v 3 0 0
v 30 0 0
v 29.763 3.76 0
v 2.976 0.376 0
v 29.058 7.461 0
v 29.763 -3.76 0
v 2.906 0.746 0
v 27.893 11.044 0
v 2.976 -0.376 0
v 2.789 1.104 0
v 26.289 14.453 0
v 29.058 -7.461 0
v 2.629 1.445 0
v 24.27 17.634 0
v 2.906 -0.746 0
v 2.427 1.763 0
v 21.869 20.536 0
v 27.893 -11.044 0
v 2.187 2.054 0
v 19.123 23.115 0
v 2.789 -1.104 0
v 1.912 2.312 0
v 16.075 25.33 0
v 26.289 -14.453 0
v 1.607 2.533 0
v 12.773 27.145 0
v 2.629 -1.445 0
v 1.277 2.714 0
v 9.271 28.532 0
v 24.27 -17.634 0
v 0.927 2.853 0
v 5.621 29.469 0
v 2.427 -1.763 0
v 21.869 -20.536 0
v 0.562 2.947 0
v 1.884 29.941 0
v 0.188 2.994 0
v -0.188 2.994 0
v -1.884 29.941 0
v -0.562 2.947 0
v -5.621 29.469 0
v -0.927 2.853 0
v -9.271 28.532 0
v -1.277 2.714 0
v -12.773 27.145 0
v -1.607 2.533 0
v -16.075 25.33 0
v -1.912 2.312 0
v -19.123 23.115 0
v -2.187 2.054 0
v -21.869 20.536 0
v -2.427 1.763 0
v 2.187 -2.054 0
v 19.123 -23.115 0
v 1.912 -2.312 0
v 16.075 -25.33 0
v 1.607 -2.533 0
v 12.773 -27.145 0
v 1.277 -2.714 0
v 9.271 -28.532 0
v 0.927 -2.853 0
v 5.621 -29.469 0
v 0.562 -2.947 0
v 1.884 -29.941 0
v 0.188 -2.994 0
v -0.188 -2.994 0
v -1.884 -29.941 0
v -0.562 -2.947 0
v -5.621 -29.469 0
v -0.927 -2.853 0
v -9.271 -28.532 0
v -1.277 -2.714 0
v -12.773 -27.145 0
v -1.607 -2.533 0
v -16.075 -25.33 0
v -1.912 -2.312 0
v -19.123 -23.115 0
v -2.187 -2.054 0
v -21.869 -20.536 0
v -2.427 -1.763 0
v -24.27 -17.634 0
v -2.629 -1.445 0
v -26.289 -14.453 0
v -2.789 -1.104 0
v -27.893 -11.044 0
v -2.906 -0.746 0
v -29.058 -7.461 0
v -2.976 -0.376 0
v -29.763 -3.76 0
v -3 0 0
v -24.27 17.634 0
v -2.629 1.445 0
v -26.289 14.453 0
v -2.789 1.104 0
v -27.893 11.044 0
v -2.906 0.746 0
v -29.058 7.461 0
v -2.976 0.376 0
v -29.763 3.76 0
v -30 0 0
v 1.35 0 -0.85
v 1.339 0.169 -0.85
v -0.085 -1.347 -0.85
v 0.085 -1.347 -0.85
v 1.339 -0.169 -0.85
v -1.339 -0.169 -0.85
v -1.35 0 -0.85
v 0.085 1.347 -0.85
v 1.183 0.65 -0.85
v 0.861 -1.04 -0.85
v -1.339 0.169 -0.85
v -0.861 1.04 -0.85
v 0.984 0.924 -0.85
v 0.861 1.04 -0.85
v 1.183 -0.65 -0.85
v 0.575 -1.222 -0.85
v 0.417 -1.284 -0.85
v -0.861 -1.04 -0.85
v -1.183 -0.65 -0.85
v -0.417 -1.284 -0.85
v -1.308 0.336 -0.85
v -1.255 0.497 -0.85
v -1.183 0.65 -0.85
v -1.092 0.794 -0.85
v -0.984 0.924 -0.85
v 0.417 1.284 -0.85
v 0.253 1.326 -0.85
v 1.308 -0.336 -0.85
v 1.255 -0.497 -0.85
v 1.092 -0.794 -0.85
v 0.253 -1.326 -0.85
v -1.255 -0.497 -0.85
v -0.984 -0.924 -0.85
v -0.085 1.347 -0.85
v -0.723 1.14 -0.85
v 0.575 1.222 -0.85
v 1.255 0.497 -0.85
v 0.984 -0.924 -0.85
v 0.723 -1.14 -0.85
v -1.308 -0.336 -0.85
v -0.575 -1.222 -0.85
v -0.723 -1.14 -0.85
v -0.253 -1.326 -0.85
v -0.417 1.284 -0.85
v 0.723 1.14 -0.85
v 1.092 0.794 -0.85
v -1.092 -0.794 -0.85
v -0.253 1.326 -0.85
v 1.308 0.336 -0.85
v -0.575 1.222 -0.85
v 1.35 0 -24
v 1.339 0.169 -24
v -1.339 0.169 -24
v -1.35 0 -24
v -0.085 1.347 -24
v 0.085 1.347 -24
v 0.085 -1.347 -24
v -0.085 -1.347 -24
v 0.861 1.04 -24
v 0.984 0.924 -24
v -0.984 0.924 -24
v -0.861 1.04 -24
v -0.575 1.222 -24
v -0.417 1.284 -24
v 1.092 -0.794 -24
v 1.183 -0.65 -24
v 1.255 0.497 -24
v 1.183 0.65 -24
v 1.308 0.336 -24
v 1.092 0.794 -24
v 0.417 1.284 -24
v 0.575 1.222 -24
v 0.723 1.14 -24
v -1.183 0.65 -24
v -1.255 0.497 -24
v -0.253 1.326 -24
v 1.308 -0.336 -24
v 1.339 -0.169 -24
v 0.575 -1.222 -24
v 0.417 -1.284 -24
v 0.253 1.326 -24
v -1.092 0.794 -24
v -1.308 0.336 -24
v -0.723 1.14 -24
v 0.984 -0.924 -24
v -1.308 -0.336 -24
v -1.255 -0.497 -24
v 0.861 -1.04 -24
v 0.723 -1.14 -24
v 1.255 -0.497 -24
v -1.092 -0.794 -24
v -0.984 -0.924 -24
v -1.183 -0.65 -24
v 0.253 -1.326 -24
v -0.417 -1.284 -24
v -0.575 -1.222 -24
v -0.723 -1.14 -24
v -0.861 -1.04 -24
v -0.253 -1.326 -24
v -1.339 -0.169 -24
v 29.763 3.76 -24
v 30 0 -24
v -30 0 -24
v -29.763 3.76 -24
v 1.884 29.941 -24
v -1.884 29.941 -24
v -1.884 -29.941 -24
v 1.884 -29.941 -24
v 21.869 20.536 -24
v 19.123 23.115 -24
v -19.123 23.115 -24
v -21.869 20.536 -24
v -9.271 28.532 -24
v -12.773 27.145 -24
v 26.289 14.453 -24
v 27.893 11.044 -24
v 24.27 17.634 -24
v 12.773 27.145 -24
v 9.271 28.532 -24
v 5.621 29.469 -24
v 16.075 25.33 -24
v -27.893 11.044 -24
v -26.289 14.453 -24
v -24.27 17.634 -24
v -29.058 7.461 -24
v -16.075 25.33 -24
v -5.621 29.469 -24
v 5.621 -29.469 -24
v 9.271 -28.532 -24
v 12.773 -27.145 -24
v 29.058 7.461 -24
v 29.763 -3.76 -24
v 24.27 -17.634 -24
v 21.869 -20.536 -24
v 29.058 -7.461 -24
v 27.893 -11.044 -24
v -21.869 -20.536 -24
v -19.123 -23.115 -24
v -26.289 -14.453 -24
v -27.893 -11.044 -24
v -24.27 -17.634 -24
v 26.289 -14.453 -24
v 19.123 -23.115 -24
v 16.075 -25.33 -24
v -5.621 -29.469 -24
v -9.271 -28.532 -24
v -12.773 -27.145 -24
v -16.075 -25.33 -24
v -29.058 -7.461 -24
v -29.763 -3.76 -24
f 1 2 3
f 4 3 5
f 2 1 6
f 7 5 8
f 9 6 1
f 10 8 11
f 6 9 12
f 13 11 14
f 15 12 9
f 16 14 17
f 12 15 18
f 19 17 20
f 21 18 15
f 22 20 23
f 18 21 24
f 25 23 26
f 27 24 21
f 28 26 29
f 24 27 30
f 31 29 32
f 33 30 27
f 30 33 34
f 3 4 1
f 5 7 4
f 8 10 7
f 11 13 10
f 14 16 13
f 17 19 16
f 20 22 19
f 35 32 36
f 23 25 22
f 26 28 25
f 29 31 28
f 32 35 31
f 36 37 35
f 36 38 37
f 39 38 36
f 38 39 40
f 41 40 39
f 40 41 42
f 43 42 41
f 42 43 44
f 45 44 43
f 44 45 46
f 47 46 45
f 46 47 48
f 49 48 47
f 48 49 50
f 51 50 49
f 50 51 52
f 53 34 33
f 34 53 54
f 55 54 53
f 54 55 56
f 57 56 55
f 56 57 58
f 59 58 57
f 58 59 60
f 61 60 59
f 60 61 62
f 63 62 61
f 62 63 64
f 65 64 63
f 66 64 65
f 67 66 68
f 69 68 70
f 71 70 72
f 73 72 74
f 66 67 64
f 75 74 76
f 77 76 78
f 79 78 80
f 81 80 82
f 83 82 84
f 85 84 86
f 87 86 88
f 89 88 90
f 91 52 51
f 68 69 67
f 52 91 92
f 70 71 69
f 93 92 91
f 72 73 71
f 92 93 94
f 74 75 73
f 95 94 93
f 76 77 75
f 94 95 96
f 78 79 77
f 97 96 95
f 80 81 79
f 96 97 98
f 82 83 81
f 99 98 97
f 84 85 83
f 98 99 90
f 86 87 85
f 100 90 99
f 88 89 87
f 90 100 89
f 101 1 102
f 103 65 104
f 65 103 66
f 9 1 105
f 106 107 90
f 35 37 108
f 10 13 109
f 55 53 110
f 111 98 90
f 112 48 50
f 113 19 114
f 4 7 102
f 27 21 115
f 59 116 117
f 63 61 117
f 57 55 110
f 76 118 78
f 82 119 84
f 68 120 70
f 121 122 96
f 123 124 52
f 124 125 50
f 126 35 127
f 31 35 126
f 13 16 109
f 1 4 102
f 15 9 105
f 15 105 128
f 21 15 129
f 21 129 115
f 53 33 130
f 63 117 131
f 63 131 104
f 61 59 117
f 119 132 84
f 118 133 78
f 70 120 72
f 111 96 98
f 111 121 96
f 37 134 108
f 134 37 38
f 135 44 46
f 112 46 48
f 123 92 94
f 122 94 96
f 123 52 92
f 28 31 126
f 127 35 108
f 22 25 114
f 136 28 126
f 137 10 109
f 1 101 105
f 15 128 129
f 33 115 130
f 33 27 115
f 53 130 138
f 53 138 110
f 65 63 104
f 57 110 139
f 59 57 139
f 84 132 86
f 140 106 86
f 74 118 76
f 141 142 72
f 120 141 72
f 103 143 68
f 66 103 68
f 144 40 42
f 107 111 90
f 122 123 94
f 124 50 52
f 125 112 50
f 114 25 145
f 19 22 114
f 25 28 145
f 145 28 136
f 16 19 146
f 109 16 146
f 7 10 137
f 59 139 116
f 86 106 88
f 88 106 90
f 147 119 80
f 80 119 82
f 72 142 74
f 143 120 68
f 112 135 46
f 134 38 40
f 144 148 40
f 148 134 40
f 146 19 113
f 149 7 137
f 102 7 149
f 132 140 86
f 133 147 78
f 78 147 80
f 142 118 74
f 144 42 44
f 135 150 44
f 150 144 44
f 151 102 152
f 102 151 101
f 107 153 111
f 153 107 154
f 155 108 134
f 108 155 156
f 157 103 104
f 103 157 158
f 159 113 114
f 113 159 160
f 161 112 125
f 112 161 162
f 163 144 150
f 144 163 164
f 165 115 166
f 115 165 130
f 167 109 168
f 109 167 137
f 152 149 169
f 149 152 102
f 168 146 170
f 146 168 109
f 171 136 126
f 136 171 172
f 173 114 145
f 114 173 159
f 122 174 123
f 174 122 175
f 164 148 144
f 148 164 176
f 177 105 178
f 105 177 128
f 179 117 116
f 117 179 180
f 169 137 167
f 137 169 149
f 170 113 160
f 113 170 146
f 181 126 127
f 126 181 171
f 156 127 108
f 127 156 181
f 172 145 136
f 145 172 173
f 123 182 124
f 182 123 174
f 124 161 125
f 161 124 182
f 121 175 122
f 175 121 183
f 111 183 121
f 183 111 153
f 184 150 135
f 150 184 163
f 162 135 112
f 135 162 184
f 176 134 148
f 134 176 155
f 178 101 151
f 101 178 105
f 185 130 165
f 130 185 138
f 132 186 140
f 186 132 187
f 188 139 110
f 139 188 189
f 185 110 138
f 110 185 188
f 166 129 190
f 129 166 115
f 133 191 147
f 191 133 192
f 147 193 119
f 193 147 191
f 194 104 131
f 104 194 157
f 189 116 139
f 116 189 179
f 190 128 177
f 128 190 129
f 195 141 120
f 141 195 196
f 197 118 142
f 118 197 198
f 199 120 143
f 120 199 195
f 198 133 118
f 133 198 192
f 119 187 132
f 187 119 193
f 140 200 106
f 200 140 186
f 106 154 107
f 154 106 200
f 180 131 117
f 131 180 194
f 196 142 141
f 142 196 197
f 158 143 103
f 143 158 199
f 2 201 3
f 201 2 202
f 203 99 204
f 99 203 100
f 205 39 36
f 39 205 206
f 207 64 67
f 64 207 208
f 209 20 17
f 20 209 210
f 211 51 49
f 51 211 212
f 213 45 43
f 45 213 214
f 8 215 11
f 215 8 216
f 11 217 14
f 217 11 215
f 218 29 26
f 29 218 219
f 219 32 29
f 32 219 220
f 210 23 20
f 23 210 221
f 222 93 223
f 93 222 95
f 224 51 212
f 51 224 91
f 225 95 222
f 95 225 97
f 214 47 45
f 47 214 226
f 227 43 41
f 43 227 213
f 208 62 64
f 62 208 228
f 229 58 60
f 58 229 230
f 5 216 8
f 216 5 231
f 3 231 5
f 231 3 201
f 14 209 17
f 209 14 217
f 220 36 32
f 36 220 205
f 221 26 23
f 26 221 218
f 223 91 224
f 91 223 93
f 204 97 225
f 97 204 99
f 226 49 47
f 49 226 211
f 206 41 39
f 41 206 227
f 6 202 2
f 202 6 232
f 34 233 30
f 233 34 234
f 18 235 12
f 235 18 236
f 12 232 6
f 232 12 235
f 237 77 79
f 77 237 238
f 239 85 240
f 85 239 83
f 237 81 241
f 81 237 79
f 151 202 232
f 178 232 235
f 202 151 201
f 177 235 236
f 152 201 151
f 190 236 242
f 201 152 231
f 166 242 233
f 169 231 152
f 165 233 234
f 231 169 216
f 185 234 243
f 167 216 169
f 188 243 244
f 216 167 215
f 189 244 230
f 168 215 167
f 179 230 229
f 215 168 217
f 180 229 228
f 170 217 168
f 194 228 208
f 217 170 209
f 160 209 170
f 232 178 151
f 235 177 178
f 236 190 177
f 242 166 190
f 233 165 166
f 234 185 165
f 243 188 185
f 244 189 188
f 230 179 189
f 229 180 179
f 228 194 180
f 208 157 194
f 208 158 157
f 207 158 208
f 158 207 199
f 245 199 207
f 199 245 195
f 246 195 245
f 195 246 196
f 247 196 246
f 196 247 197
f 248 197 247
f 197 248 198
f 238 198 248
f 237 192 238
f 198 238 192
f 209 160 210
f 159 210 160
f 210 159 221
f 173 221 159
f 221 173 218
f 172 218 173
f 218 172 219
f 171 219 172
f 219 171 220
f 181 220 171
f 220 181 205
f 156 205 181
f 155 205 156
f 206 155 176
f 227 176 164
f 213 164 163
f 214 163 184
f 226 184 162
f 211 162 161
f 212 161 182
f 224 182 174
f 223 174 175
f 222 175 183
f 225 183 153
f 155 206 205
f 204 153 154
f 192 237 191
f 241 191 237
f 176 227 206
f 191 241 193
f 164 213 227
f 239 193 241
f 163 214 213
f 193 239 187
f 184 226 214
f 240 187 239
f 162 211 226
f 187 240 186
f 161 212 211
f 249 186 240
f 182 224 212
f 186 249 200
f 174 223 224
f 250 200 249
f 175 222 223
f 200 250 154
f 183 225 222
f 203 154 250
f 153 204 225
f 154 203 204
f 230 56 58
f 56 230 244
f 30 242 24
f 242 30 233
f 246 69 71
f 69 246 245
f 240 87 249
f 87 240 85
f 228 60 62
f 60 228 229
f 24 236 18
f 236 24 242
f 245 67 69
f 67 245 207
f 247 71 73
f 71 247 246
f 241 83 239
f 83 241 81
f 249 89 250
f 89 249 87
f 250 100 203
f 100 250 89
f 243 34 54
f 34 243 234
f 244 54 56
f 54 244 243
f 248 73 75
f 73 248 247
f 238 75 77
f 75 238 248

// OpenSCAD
$fn = 50;

difference() {
	union() {
		translate(v = [0, 0, -24.0]) {
			cylinder(h = 24, r = 30.0);
		}
	}
	union() {
		translate(v = [0, 0, 0]) {
			rotate(a = [0, 0, 0]) {
				difference() {
					union() {
						translate(v = [0, 0, -27.0]) {
							cylinder(h = 27, r = 1.0);
						}
						translate(v = [0, 0, -0.85]) {
							cylinder(h = 0.85, r1 = 1.35, r2 = 3.0);
						}
						translate(v = [0, 0, -27.0]) {
							cylinder(h = 27, r = 1.35);
						}
						translate(v = [0, 0, -27.0]) {
							cylinder(h = 27, r = 1.0);
						}
					}
					union();
				}
			}
		}
	}
}
